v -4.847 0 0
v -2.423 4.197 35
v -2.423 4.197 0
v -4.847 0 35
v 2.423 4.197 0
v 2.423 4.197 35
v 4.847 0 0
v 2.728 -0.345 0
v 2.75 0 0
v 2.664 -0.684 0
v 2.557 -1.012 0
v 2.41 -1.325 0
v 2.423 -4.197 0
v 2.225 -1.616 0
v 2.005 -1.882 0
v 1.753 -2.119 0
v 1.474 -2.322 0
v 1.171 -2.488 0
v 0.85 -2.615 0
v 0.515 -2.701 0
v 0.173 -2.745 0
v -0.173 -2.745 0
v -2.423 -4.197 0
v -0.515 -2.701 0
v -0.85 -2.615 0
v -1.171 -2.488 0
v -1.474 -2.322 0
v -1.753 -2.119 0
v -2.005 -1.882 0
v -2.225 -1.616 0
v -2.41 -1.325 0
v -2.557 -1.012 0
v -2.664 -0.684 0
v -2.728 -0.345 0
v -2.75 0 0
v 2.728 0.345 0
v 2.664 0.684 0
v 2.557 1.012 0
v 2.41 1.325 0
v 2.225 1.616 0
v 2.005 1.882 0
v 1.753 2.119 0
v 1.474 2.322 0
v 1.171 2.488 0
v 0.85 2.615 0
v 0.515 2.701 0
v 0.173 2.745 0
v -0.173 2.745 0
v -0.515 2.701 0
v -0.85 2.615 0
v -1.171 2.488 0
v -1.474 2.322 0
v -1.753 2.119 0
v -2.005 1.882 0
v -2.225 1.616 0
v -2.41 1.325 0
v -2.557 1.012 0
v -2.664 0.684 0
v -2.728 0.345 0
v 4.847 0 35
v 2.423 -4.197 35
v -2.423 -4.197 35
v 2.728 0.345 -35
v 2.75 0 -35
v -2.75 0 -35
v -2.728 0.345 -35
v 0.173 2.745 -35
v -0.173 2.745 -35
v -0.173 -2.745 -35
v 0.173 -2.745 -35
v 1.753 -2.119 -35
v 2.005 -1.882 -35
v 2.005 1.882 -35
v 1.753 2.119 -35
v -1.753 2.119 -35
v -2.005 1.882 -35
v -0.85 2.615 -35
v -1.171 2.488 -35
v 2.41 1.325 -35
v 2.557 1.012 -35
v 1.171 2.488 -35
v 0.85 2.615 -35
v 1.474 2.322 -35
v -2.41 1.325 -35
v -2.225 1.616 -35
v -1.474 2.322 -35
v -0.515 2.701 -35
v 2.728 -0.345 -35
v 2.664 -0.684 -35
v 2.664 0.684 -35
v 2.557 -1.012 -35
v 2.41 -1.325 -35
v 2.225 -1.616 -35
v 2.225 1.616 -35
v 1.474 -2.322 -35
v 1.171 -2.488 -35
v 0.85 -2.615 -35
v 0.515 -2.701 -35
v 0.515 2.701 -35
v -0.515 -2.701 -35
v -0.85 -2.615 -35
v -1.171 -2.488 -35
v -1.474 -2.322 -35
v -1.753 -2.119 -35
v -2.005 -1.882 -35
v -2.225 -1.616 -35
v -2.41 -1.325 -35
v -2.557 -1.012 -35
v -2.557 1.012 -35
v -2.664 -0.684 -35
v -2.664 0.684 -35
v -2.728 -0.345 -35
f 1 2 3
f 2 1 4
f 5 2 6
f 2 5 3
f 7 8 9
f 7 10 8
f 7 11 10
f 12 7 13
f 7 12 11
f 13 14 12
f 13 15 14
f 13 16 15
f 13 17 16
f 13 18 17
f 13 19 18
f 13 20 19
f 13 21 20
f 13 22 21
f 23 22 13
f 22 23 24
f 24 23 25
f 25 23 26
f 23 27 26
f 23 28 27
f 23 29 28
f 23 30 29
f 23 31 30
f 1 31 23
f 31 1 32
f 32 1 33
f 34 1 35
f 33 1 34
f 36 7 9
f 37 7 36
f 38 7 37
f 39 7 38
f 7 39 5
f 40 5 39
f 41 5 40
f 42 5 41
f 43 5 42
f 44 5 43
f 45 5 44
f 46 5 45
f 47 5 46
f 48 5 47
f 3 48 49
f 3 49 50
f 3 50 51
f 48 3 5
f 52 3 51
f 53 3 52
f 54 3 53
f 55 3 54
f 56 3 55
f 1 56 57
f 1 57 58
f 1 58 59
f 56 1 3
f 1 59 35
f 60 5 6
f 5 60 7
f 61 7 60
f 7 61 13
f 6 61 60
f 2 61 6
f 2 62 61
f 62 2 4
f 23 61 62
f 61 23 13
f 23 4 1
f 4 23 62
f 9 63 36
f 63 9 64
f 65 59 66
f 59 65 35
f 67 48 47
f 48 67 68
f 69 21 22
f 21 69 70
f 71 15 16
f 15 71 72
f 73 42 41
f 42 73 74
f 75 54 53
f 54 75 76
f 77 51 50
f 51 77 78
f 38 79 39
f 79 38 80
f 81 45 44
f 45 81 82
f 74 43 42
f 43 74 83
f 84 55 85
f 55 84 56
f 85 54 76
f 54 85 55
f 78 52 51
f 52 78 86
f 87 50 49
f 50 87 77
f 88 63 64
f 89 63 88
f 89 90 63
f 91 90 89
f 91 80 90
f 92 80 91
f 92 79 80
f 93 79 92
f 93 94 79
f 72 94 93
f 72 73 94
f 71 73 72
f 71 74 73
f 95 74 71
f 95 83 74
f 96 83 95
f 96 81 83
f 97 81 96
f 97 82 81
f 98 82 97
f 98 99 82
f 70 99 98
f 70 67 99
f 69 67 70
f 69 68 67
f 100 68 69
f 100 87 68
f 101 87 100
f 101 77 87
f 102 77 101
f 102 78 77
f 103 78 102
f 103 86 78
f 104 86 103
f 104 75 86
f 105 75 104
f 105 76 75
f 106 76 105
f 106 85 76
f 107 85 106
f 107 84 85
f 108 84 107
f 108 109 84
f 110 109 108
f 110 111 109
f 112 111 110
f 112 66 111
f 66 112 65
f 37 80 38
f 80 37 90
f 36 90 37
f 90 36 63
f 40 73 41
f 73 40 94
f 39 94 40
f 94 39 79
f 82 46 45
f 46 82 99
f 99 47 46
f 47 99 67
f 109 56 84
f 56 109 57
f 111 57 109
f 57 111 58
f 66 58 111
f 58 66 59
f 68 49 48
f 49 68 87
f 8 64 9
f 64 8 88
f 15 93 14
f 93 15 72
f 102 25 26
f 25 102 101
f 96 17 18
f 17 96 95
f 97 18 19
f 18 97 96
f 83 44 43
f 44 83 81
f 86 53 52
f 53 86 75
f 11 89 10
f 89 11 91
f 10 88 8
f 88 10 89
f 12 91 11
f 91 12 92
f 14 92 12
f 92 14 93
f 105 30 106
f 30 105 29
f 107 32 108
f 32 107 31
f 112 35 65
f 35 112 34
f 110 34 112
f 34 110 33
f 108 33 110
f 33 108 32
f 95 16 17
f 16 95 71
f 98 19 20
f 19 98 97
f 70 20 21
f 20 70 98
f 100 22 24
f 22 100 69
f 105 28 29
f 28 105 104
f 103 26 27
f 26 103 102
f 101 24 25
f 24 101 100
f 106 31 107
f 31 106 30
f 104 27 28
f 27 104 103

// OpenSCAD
$fn = 50;


difference() {
	union() {
		translate(v = [0, 0, 0]) {
			rotate(a = [0, 0, 0]) {
				translate(v = [0, 0, 0]) {
					rotate(a = [0, 0, 0]) {
						linear_extrude(height = 35) {
							polygon(points = [[4.8468000000, 0.0000000000], [2.4234000000, 4.1974519271], [-2.4234000000, 4.1974519271], [-4.8468000000, 0.0000000000], [-2.4234000000, -4.1974519271], [2.4234000000, -4.1974519271]]);
						}
					}
				}
			}
		}
		translate(v = [0, 0, -35]) {
			rotate(a = [0, 0, 0]) {
				cylinder(h = 35, r = 2.7500000000);
			}
		}
	}
	union();
}
